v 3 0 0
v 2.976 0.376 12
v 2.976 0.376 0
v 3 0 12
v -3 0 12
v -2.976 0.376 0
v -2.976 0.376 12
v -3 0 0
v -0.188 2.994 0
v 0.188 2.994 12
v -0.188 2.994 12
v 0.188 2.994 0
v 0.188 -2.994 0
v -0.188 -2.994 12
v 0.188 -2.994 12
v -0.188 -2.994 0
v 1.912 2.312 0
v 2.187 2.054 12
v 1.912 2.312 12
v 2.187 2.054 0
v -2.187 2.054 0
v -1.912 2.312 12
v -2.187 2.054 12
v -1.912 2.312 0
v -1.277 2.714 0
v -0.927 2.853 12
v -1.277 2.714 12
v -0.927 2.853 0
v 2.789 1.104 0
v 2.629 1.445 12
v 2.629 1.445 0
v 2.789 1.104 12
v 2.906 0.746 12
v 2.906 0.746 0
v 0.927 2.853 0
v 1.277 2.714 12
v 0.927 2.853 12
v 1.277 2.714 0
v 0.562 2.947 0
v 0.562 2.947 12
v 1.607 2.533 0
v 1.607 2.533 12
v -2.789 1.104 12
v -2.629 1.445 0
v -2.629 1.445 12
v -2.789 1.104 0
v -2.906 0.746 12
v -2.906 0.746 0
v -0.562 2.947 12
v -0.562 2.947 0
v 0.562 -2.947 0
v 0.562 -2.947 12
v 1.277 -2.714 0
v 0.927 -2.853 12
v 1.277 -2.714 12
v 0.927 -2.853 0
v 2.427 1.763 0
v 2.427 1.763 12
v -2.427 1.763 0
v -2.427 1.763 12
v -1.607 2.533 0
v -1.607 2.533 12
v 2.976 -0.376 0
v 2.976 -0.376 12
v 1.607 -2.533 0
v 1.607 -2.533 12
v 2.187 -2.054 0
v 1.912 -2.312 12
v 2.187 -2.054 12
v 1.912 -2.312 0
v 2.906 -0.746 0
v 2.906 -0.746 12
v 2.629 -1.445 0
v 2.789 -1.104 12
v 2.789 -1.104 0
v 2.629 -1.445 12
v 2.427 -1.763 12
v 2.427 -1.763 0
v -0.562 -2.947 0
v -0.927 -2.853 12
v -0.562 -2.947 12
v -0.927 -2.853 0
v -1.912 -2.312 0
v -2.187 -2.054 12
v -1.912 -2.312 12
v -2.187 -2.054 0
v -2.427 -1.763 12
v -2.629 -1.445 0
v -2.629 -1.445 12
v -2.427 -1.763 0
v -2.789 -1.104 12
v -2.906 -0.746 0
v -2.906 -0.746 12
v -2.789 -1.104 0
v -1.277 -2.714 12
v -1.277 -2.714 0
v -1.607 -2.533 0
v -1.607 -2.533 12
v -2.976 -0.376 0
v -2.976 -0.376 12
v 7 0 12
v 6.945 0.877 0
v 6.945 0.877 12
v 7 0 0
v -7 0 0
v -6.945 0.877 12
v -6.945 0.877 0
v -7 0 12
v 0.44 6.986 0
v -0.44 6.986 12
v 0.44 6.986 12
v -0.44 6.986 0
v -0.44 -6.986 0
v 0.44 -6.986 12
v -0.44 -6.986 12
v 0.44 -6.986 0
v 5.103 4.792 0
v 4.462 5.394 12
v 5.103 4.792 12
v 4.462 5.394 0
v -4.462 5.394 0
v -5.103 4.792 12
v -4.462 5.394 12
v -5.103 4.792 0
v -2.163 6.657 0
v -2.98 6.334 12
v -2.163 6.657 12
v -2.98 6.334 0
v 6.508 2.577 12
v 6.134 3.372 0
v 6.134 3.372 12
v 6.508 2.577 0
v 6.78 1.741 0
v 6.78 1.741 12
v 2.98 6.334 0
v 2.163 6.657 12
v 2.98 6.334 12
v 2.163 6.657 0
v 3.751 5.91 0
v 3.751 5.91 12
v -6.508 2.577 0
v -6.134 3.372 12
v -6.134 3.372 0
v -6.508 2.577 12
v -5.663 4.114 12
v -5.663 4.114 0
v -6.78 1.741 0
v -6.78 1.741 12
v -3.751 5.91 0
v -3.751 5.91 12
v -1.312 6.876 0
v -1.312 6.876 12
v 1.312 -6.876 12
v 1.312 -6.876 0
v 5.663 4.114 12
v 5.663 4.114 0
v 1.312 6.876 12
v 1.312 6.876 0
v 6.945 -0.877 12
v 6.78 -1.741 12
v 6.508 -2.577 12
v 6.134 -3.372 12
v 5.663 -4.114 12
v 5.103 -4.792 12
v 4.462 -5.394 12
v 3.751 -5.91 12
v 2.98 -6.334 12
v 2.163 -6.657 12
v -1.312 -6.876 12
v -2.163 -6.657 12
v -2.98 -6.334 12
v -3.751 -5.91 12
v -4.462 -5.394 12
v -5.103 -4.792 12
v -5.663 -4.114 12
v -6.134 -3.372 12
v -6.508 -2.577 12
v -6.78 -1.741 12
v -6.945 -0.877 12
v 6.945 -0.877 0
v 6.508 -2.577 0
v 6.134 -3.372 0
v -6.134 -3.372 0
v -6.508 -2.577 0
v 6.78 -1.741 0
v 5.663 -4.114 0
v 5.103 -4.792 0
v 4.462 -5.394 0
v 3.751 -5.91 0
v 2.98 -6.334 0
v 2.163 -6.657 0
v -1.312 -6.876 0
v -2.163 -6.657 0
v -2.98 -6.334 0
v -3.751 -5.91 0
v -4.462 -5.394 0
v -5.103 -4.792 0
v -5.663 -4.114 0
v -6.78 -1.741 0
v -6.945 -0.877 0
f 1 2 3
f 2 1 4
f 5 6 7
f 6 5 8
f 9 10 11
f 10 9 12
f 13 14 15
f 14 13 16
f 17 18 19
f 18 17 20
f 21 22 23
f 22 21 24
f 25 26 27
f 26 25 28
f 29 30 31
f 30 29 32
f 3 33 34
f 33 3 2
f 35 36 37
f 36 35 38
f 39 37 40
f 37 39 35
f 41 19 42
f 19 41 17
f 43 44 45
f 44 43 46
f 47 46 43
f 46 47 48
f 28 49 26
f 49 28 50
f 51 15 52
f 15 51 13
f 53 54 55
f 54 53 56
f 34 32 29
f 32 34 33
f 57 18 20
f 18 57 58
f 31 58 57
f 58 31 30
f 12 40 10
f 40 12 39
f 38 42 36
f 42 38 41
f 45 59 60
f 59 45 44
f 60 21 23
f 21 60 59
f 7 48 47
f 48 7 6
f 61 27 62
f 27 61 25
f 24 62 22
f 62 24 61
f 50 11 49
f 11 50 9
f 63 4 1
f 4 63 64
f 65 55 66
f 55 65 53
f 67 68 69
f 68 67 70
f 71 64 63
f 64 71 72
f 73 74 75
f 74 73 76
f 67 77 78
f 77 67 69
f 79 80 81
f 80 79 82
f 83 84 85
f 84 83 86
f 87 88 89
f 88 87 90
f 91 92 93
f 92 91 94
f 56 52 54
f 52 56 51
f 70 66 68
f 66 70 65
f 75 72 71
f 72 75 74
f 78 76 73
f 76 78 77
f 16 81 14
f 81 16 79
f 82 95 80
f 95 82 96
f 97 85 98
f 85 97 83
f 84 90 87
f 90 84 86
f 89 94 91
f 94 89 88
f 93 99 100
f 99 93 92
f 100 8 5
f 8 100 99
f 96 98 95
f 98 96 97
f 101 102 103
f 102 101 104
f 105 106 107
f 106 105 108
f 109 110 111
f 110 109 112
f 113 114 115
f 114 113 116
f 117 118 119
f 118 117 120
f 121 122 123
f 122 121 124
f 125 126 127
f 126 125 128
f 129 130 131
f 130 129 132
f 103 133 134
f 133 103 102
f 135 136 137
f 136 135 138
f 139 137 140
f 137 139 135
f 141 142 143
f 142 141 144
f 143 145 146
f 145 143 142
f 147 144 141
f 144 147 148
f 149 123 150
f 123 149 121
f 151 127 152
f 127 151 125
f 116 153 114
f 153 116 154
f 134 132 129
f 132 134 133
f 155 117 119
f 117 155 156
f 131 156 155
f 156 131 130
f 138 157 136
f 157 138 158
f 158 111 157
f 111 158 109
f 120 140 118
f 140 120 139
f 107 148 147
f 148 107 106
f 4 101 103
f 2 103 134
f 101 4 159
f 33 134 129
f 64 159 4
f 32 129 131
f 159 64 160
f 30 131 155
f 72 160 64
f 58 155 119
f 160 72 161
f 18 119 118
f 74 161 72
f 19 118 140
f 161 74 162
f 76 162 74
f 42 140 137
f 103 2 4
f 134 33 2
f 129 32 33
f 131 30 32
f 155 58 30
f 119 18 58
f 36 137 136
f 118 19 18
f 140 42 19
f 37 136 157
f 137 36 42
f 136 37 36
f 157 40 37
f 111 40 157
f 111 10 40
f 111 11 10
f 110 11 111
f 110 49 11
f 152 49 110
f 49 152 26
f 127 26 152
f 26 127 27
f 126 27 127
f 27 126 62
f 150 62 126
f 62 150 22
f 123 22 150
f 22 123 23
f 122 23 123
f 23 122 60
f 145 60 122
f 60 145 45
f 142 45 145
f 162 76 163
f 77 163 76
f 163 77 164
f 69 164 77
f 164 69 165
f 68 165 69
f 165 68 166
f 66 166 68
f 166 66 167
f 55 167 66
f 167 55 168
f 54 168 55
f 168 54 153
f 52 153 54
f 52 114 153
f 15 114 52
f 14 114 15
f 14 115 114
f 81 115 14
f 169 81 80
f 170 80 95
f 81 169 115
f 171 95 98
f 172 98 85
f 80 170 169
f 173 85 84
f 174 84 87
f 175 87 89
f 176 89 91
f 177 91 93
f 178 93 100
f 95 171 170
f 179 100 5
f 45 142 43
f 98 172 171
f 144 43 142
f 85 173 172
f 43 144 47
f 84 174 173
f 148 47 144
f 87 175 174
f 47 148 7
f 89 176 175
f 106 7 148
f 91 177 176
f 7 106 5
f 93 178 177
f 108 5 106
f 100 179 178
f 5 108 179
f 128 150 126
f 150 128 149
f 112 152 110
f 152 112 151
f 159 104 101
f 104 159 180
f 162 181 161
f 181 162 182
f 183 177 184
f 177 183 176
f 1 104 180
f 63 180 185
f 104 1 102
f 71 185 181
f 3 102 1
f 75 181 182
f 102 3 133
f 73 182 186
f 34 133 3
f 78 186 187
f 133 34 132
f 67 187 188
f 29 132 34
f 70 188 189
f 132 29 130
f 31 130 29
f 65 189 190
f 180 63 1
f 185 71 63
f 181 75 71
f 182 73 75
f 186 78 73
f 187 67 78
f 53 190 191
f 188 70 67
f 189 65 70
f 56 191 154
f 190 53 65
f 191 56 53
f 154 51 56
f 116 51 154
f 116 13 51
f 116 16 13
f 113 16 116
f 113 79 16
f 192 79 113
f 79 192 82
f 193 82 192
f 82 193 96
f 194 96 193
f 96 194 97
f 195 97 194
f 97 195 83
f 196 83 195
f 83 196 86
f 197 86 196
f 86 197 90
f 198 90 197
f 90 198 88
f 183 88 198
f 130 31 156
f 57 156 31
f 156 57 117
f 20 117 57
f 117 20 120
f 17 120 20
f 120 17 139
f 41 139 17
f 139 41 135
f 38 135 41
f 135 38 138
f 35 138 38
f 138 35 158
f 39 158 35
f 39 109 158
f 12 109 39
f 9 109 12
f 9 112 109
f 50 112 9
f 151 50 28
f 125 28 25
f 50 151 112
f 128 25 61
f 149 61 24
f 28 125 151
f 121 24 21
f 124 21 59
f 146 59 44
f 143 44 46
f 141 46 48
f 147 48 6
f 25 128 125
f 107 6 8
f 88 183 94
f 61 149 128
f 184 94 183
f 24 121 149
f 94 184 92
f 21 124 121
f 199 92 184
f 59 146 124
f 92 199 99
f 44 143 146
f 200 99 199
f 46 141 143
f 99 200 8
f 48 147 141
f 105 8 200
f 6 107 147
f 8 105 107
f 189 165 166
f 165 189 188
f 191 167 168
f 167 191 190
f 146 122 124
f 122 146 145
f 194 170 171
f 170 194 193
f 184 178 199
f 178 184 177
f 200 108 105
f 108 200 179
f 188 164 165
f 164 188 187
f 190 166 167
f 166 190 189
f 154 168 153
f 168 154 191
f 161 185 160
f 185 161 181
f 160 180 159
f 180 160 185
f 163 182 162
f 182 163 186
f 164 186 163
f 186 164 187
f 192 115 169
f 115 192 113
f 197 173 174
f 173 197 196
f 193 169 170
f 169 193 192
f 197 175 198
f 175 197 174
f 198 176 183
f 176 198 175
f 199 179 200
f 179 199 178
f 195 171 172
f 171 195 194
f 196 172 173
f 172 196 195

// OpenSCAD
$fn = 50;


difference() {
	union() {
		*color(alpha = 1.0000000000, c = "gray") {
			translate(v = [0, 7, 0]) {
				linear_extrude(height = 1) {
					text(font = "Arial:style=Bold", halign = "center", size = 4.5000000000, text = "COMMENT plate main", valign = "center");
				}
			}
		}
		*color(alpha = 1.0000000000, c = "gray") {
			translate(v = [0, 14, 0]) {
				linear_extrude(height = 1) {
					text(font = "Arial:style=Bold", halign = "center", size = 4.5000000000, text = "COMMENT description oobb_plate_shape_p_type_12_depth_1_width_1_height_12_thickness_true_both_holes", valign = "center");
				}
			}
		}
		cylinder(h = 12, r = 7.0000000000);
	}
	union() {
		*color(alpha = 1.0000000000, c = "gray") {
			translate(v = [0, 7, 0]) {
				linear_extrude(height = 1) {
					text(font = "Arial:style=Bold", halign = "center", size = 4.5000000000, text = "COMMENT holes main", valign = "center");
				}
			}
		}
		*color(alpha = 1.0000000000, c = "gray") {
			translate(v = [0, 14, 0]) {
				linear_extrude(height = 1) {
					text(font = "Arial:style=Bold", halign = "center", size = 4.5000000000, text = "COMMENT description oobb_holes_shape_n_type_1_width_1_height_12_thickness_true_both_holes", valign = "center");
				}
			}
		}
		translate(v = [0, 0, -50]) {
			cylinder(h = 100, r = 3.0000000000);
		}
		translate(v = [0, 0, -50]) {
			cylinder(h = 100, r = 1.5000000000);
		}
	}
}
